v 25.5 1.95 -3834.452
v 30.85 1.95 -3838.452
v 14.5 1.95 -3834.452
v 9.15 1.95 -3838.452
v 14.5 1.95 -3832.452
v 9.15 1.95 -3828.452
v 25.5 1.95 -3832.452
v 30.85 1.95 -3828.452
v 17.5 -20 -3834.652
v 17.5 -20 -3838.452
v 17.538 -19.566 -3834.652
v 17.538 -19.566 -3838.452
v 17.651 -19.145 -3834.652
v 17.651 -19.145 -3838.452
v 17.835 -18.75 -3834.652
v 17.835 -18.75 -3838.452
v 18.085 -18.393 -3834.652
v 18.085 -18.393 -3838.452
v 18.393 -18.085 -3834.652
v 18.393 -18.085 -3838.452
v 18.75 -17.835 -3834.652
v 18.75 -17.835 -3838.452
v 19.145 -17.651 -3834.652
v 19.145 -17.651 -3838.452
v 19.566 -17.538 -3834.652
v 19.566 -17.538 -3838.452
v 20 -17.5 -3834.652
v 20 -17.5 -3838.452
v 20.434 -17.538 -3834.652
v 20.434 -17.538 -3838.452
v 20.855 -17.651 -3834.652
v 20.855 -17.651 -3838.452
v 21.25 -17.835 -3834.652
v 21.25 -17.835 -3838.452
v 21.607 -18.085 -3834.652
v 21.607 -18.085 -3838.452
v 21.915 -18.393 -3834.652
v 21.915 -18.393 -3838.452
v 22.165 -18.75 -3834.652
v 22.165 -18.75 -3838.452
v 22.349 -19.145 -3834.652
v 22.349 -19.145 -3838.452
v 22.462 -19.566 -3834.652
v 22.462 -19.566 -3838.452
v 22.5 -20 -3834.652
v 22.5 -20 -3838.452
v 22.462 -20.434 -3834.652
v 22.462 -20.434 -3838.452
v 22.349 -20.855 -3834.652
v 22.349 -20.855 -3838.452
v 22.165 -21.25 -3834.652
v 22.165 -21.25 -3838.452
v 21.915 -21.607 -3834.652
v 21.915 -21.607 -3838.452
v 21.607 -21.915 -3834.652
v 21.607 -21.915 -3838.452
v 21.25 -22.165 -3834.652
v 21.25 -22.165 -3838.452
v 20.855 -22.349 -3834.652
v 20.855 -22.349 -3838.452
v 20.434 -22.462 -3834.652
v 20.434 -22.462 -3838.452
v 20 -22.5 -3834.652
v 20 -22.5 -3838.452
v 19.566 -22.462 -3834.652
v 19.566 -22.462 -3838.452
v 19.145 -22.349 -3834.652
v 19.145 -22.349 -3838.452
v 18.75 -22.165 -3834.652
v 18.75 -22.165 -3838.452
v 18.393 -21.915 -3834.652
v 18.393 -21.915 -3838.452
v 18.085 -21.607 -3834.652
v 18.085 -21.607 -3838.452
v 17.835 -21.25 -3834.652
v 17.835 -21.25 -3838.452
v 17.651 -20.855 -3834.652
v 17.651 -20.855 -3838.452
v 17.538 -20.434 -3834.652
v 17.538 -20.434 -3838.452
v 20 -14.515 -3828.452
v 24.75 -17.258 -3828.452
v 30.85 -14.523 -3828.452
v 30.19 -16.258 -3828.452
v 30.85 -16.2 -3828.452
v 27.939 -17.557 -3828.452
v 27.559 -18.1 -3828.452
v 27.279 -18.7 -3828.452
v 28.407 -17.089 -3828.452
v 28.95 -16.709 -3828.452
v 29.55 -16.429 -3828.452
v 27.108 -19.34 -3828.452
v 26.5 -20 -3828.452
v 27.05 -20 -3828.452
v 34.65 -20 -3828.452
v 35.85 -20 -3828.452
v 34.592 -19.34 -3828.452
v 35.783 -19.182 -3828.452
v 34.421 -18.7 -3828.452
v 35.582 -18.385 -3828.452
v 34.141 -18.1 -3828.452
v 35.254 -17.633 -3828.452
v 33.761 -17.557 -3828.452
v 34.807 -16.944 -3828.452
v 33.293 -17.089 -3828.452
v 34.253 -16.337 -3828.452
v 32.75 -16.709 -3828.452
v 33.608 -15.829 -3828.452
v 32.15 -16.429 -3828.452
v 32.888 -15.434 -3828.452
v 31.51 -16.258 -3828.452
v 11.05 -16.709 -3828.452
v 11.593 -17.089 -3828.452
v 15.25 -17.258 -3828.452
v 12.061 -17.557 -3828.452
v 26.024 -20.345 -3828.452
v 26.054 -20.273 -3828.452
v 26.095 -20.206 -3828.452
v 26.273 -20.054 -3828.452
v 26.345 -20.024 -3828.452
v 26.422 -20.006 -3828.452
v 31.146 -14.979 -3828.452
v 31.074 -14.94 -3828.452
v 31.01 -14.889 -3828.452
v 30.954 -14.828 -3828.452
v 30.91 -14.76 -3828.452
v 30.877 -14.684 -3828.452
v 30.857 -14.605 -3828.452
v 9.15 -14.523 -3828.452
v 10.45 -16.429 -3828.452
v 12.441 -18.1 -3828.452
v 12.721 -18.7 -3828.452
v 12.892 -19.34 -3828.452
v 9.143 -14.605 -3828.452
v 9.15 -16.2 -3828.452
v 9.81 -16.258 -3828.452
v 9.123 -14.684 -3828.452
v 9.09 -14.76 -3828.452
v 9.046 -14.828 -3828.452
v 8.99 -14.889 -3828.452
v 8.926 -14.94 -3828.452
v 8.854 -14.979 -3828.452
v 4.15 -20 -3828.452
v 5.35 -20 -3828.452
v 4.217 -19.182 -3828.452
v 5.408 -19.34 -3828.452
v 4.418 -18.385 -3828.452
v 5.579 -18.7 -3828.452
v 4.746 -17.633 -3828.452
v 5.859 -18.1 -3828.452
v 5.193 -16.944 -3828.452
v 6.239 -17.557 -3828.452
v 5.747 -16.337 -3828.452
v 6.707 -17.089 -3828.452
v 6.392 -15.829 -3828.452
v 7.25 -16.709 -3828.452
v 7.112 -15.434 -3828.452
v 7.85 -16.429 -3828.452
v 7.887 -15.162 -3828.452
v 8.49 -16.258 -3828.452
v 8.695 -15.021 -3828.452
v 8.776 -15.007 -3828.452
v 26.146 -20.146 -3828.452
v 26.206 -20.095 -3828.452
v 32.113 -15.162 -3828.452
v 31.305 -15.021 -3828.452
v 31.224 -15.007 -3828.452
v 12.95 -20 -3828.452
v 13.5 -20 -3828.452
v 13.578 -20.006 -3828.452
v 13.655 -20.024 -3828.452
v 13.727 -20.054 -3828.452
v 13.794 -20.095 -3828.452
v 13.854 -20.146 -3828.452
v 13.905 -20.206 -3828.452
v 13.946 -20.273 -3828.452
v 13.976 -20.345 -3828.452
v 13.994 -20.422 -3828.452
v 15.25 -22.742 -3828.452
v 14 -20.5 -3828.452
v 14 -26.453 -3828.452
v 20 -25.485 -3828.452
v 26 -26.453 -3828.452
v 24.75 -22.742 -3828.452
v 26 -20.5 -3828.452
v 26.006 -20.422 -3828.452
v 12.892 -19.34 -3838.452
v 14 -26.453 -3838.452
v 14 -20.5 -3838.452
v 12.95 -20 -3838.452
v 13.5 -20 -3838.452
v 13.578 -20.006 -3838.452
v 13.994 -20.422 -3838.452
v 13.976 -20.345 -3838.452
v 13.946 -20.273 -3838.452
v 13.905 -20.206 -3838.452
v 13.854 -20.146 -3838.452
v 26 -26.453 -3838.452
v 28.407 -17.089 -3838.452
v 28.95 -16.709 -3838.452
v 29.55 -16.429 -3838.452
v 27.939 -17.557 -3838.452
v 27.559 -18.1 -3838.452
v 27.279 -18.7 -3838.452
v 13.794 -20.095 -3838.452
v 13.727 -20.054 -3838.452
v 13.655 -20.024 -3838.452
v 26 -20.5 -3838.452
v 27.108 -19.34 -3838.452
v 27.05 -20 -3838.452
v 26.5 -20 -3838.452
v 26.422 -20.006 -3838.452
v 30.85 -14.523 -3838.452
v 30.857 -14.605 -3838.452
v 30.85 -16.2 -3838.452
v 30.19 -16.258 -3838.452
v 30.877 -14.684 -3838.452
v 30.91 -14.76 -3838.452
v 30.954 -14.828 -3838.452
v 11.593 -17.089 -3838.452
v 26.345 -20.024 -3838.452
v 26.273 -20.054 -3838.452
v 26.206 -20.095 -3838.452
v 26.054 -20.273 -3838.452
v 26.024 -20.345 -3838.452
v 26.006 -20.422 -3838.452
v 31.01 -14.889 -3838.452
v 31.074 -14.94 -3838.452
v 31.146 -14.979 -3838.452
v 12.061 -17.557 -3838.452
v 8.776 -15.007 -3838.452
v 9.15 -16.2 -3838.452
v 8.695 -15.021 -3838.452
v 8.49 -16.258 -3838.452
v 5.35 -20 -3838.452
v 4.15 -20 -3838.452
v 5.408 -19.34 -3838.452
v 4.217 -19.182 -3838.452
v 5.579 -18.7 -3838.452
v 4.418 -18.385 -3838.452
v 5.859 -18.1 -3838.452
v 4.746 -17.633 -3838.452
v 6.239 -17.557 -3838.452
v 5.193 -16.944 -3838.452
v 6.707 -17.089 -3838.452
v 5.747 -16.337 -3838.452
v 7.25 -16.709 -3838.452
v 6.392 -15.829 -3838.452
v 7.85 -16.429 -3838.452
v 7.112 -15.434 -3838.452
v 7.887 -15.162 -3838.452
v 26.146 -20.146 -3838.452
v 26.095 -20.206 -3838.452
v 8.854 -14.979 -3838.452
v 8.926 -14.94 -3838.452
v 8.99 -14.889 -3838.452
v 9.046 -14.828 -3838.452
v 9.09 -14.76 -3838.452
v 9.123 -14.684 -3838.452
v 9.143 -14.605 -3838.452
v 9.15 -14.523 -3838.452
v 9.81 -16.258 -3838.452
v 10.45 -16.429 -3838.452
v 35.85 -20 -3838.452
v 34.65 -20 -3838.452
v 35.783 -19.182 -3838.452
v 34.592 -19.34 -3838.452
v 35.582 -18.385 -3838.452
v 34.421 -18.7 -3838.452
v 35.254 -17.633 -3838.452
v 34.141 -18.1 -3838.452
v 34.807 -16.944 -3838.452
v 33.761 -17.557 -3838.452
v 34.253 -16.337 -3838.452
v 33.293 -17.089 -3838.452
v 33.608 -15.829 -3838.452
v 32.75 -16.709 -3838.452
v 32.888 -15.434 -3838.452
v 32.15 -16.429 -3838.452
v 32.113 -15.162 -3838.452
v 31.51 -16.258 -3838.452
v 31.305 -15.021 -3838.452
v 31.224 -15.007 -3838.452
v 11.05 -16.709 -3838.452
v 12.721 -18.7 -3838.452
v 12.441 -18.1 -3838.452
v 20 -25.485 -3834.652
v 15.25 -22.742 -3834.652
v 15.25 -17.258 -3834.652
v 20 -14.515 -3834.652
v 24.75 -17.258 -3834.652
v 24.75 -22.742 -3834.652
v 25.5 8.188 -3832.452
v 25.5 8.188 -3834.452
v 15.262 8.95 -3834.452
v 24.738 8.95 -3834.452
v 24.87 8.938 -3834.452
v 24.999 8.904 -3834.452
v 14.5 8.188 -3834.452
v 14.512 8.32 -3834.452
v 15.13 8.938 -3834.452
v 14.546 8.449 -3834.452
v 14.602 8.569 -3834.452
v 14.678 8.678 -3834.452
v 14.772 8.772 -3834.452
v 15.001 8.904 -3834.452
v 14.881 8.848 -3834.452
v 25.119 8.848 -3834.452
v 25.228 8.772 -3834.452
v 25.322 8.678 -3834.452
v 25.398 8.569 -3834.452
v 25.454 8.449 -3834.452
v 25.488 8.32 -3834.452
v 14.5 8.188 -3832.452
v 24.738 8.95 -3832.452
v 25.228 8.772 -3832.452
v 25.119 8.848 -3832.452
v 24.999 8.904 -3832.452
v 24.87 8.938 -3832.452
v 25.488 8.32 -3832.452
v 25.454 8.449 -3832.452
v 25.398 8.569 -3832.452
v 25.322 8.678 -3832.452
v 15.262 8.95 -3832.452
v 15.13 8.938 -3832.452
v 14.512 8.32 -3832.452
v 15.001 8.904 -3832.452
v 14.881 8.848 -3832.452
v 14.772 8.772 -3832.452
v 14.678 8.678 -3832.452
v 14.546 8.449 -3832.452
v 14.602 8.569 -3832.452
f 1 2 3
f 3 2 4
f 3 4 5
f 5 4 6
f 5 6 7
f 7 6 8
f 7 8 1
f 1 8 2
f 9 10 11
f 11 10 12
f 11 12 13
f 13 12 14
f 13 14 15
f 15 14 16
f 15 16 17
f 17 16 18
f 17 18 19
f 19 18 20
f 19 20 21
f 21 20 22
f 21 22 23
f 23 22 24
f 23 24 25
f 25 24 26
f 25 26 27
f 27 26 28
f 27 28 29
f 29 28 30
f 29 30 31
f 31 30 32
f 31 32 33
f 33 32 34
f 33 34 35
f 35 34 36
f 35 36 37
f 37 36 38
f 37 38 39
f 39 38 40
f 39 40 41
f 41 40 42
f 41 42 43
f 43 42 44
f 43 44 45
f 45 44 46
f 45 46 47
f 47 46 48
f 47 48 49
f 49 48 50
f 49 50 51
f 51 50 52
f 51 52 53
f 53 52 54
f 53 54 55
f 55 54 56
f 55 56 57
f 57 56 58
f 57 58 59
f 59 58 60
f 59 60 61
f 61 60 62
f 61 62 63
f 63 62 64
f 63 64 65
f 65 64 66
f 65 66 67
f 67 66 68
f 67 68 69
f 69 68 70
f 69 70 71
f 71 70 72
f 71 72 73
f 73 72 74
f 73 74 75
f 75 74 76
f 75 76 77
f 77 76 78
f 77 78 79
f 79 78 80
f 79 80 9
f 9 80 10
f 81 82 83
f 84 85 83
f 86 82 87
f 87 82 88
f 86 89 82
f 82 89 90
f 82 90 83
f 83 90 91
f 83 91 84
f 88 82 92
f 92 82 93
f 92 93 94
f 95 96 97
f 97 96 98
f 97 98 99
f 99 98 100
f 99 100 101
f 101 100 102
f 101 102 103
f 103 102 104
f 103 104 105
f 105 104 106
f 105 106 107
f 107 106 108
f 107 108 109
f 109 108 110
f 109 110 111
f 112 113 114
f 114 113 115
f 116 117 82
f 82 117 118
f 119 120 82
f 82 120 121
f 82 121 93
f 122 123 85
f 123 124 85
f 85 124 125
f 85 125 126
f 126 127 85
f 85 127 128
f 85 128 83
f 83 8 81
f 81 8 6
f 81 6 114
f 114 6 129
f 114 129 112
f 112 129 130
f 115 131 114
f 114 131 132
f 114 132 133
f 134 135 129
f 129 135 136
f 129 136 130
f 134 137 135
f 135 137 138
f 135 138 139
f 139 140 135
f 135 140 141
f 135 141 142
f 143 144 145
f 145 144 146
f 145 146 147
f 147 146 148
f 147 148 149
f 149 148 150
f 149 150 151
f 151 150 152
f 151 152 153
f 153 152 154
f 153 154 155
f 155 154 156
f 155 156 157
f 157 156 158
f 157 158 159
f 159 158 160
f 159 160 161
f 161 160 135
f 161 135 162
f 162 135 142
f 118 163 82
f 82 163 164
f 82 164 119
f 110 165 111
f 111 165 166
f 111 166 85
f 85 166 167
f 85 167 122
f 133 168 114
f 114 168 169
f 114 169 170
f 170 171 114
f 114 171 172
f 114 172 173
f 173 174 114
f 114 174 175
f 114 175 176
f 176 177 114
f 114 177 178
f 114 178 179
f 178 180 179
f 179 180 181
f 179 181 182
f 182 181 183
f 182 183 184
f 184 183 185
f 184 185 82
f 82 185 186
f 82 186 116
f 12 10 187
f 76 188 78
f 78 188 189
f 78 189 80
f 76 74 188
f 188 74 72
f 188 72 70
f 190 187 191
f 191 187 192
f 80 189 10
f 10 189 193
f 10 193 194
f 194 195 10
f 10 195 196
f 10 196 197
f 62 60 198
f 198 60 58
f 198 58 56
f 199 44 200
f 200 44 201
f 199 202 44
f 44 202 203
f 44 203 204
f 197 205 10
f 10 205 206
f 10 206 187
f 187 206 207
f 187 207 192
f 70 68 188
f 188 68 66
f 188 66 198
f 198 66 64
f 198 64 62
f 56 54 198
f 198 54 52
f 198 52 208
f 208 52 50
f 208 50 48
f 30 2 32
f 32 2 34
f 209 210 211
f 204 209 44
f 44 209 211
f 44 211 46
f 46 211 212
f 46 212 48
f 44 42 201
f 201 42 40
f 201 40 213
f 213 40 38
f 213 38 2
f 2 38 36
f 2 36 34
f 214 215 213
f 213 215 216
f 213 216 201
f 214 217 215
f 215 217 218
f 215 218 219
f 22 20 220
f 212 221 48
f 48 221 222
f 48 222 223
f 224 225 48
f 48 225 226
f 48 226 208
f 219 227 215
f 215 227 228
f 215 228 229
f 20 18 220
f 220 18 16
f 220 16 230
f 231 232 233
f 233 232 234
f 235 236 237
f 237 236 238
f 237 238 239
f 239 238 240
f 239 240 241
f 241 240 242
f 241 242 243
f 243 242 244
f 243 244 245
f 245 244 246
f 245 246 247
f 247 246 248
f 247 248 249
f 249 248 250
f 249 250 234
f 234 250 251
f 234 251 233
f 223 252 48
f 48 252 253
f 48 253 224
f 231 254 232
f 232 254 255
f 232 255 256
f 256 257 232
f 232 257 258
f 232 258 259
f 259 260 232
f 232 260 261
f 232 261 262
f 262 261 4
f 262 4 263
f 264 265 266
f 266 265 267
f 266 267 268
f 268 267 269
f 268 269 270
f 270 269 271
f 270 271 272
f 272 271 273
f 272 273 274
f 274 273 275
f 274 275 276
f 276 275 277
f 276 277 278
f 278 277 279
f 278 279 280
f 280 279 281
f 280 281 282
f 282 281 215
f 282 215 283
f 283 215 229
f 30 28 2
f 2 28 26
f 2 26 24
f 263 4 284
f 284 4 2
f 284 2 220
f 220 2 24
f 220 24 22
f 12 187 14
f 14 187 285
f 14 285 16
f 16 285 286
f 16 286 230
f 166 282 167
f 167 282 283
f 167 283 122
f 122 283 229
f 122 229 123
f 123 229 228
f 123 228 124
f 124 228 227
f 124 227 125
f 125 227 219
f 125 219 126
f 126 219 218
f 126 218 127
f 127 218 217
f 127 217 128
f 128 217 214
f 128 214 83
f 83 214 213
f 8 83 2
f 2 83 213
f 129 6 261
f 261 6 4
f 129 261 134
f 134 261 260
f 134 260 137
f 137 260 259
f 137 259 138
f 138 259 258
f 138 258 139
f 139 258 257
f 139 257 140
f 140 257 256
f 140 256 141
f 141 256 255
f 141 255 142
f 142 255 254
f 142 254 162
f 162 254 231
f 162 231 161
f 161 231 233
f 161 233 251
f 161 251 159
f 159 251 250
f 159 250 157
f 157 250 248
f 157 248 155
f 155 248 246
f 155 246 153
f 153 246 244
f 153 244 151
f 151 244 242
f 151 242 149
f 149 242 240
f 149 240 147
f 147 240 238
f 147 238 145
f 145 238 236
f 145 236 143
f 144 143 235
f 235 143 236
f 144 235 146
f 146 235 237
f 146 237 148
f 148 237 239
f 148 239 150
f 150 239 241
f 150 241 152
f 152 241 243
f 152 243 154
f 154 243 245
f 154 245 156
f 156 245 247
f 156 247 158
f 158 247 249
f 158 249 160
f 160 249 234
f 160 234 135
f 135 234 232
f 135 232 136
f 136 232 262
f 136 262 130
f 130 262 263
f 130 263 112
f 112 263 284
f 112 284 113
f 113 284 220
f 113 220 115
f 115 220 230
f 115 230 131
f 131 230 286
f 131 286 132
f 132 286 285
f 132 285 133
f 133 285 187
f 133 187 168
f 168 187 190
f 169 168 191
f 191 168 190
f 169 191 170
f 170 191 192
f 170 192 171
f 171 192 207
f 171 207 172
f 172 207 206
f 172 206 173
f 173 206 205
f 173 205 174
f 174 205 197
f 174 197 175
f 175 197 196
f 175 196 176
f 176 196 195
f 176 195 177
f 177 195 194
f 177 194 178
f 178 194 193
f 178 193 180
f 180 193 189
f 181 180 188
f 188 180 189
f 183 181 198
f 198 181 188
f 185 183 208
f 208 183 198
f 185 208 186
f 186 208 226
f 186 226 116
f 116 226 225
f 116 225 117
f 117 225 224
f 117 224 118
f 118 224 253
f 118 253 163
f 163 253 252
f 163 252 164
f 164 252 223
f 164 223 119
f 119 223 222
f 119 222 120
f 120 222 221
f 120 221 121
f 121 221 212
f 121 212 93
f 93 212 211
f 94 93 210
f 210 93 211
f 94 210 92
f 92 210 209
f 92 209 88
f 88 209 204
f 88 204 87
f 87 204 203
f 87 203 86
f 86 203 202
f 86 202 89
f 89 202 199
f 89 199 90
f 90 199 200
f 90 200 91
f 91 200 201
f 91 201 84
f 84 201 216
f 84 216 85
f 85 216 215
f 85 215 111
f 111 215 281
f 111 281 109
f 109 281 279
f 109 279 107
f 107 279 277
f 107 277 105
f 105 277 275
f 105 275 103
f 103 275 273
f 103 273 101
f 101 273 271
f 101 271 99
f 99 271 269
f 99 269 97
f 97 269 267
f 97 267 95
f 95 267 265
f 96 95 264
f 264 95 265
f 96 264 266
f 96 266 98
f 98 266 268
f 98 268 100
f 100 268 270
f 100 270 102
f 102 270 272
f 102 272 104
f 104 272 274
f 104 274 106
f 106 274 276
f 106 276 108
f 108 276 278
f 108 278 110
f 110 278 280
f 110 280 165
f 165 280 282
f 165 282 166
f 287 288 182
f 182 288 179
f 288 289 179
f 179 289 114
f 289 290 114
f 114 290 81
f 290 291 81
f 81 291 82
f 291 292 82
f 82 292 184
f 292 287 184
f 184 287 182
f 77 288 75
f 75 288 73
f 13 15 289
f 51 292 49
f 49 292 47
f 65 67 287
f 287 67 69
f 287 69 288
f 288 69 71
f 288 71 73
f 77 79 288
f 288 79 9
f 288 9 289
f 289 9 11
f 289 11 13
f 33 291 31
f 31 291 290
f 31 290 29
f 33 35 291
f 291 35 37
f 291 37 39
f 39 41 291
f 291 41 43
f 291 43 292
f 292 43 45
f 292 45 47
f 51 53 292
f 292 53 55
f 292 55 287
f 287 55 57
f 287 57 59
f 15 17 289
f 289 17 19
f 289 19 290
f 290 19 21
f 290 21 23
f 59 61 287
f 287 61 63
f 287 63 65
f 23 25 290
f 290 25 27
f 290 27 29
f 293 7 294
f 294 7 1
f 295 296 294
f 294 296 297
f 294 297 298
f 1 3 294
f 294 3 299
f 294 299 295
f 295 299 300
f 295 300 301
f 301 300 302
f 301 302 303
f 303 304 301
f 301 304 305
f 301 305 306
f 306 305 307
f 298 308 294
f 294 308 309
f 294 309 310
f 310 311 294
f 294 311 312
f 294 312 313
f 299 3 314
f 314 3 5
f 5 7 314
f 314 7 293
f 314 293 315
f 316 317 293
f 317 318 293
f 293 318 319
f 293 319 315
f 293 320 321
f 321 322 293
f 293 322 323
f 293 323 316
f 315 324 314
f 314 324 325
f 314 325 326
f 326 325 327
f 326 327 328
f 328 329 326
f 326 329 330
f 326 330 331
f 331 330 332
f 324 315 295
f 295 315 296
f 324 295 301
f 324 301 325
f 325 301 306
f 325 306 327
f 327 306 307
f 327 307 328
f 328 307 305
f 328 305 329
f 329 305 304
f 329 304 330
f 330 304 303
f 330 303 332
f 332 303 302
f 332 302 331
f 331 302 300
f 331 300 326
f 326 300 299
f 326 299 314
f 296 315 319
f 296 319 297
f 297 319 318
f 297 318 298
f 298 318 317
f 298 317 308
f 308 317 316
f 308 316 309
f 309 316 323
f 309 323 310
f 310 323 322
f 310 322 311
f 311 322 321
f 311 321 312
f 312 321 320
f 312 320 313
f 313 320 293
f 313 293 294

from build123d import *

# Parameters (mm, degrees)
SKETCH2_R           = 2.5
BOSS_EXTRUDE1_DEPTH = 10
CUT_EXTRUDE1_DEPTH  = 6.2
SKETCH4_W           = 11
SKETCH4_H           = 2
BOSS_EXTRUDE2_DEPTH = 7
FILLET1_R           = 0.762


with BuildPart() as part:
    # Sketch2 → Boss-Extrude1 (new body)
    with BuildSketch(Plane.XY.offset(-3838.451709017)):
        with BuildLine():
            Line((13.5, -20), (12.95, -20))
            ThreePointArc((12.95, -20), (9.15, -16.2), (5.35, -20))
            Line((5.35, -20), (4.15, -20))
            ThreePointArc((4.15, -20), (5.457255271, -16.629000688), (8.695454545, -15.020704023))
            ThreePointArc((8.695454545, -15.020704023), (9.019274473, -14.859874356), (9.15, -14.522774425))
            Line((9.15, -14.522774425), (9.15, 1.95))
            Line((9.15, 1.95), (30.85, 1.95))
            Line((30.85, 1.95), (30.85, -14.522774425))
            ThreePointArc((30.85, -14.522774425), (30.980725527, -14.859874356), (31.304545455, -15.020704023))
            ThreePointArc((31.304545455, -15.020704023), (34.542744729, -16.629000688), (35.85, -20))
            Line((35.85, -20), (34.65, -20))
            ThreePointArc((34.65, -20), (30.85, -16.2), (27.05, -20))
            Line((27.05, -20), (26.5, -20))
            ThreePointArc((26.5, -20), (26.146446609, -20.146446609), (26, -20.5))
            Line((26, -20.5), (26, -26.452543058))
            Line((26, -26.452543058), (20, -26.452543058))
            Line((20, -26.452543058), (14, -26.452543058))
            Line((14, -26.452543058), (14, -20.5))
            ThreePointArc((14, -20.5), (13.853553391, -20.146446609), (13.5, -20))
        make_face()
        with Locations((20, -20)):
            Circle(SKETCH2_R, mode=Mode.SUBTRACT)
    extrude(amount=BOSS_EXTRUDE1_DEPTH)

    # Sketch3 → Cut-Extrude1 (cut)
    with BuildSketch(Plane.XY.offset(-3828.451709017)):
        Polygon((20, -25.484827557), (24.75, -22.742413779), (24.75, -17.257586221), (20, -14.515172443), (15.25, -17.257586221), (15.25, -22.742413779), align=None)
    extrude(amount=-CUT_EXTRUDE1_DEPTH, mode=Mode.SUBTRACT)

    # Sketch4 → Boss-Extrude2 (add)
    with BuildSketch(Plane(origin=(0, 1.95, 0), x_dir=(1, 0, 0), z_dir=(0, 1, 0))):
        with Locations((20, 3833.451709017)):
            Rectangle(SKETCH4_W, SKETCH4_H)
    extrude(amount=BOSS_EXTRUDE2_DEPTH)

    # Fillet1
    fillet1_edges = [part.edges().sort_by_distance(p)[0] for p in [
        (25.5, 8.95, -3833.451709017),
        (14.5, 8.95, -3833.451709017),
    ]]
    fillet(fillet1_edges, radius=FILLET1_R)


solid = part.part
